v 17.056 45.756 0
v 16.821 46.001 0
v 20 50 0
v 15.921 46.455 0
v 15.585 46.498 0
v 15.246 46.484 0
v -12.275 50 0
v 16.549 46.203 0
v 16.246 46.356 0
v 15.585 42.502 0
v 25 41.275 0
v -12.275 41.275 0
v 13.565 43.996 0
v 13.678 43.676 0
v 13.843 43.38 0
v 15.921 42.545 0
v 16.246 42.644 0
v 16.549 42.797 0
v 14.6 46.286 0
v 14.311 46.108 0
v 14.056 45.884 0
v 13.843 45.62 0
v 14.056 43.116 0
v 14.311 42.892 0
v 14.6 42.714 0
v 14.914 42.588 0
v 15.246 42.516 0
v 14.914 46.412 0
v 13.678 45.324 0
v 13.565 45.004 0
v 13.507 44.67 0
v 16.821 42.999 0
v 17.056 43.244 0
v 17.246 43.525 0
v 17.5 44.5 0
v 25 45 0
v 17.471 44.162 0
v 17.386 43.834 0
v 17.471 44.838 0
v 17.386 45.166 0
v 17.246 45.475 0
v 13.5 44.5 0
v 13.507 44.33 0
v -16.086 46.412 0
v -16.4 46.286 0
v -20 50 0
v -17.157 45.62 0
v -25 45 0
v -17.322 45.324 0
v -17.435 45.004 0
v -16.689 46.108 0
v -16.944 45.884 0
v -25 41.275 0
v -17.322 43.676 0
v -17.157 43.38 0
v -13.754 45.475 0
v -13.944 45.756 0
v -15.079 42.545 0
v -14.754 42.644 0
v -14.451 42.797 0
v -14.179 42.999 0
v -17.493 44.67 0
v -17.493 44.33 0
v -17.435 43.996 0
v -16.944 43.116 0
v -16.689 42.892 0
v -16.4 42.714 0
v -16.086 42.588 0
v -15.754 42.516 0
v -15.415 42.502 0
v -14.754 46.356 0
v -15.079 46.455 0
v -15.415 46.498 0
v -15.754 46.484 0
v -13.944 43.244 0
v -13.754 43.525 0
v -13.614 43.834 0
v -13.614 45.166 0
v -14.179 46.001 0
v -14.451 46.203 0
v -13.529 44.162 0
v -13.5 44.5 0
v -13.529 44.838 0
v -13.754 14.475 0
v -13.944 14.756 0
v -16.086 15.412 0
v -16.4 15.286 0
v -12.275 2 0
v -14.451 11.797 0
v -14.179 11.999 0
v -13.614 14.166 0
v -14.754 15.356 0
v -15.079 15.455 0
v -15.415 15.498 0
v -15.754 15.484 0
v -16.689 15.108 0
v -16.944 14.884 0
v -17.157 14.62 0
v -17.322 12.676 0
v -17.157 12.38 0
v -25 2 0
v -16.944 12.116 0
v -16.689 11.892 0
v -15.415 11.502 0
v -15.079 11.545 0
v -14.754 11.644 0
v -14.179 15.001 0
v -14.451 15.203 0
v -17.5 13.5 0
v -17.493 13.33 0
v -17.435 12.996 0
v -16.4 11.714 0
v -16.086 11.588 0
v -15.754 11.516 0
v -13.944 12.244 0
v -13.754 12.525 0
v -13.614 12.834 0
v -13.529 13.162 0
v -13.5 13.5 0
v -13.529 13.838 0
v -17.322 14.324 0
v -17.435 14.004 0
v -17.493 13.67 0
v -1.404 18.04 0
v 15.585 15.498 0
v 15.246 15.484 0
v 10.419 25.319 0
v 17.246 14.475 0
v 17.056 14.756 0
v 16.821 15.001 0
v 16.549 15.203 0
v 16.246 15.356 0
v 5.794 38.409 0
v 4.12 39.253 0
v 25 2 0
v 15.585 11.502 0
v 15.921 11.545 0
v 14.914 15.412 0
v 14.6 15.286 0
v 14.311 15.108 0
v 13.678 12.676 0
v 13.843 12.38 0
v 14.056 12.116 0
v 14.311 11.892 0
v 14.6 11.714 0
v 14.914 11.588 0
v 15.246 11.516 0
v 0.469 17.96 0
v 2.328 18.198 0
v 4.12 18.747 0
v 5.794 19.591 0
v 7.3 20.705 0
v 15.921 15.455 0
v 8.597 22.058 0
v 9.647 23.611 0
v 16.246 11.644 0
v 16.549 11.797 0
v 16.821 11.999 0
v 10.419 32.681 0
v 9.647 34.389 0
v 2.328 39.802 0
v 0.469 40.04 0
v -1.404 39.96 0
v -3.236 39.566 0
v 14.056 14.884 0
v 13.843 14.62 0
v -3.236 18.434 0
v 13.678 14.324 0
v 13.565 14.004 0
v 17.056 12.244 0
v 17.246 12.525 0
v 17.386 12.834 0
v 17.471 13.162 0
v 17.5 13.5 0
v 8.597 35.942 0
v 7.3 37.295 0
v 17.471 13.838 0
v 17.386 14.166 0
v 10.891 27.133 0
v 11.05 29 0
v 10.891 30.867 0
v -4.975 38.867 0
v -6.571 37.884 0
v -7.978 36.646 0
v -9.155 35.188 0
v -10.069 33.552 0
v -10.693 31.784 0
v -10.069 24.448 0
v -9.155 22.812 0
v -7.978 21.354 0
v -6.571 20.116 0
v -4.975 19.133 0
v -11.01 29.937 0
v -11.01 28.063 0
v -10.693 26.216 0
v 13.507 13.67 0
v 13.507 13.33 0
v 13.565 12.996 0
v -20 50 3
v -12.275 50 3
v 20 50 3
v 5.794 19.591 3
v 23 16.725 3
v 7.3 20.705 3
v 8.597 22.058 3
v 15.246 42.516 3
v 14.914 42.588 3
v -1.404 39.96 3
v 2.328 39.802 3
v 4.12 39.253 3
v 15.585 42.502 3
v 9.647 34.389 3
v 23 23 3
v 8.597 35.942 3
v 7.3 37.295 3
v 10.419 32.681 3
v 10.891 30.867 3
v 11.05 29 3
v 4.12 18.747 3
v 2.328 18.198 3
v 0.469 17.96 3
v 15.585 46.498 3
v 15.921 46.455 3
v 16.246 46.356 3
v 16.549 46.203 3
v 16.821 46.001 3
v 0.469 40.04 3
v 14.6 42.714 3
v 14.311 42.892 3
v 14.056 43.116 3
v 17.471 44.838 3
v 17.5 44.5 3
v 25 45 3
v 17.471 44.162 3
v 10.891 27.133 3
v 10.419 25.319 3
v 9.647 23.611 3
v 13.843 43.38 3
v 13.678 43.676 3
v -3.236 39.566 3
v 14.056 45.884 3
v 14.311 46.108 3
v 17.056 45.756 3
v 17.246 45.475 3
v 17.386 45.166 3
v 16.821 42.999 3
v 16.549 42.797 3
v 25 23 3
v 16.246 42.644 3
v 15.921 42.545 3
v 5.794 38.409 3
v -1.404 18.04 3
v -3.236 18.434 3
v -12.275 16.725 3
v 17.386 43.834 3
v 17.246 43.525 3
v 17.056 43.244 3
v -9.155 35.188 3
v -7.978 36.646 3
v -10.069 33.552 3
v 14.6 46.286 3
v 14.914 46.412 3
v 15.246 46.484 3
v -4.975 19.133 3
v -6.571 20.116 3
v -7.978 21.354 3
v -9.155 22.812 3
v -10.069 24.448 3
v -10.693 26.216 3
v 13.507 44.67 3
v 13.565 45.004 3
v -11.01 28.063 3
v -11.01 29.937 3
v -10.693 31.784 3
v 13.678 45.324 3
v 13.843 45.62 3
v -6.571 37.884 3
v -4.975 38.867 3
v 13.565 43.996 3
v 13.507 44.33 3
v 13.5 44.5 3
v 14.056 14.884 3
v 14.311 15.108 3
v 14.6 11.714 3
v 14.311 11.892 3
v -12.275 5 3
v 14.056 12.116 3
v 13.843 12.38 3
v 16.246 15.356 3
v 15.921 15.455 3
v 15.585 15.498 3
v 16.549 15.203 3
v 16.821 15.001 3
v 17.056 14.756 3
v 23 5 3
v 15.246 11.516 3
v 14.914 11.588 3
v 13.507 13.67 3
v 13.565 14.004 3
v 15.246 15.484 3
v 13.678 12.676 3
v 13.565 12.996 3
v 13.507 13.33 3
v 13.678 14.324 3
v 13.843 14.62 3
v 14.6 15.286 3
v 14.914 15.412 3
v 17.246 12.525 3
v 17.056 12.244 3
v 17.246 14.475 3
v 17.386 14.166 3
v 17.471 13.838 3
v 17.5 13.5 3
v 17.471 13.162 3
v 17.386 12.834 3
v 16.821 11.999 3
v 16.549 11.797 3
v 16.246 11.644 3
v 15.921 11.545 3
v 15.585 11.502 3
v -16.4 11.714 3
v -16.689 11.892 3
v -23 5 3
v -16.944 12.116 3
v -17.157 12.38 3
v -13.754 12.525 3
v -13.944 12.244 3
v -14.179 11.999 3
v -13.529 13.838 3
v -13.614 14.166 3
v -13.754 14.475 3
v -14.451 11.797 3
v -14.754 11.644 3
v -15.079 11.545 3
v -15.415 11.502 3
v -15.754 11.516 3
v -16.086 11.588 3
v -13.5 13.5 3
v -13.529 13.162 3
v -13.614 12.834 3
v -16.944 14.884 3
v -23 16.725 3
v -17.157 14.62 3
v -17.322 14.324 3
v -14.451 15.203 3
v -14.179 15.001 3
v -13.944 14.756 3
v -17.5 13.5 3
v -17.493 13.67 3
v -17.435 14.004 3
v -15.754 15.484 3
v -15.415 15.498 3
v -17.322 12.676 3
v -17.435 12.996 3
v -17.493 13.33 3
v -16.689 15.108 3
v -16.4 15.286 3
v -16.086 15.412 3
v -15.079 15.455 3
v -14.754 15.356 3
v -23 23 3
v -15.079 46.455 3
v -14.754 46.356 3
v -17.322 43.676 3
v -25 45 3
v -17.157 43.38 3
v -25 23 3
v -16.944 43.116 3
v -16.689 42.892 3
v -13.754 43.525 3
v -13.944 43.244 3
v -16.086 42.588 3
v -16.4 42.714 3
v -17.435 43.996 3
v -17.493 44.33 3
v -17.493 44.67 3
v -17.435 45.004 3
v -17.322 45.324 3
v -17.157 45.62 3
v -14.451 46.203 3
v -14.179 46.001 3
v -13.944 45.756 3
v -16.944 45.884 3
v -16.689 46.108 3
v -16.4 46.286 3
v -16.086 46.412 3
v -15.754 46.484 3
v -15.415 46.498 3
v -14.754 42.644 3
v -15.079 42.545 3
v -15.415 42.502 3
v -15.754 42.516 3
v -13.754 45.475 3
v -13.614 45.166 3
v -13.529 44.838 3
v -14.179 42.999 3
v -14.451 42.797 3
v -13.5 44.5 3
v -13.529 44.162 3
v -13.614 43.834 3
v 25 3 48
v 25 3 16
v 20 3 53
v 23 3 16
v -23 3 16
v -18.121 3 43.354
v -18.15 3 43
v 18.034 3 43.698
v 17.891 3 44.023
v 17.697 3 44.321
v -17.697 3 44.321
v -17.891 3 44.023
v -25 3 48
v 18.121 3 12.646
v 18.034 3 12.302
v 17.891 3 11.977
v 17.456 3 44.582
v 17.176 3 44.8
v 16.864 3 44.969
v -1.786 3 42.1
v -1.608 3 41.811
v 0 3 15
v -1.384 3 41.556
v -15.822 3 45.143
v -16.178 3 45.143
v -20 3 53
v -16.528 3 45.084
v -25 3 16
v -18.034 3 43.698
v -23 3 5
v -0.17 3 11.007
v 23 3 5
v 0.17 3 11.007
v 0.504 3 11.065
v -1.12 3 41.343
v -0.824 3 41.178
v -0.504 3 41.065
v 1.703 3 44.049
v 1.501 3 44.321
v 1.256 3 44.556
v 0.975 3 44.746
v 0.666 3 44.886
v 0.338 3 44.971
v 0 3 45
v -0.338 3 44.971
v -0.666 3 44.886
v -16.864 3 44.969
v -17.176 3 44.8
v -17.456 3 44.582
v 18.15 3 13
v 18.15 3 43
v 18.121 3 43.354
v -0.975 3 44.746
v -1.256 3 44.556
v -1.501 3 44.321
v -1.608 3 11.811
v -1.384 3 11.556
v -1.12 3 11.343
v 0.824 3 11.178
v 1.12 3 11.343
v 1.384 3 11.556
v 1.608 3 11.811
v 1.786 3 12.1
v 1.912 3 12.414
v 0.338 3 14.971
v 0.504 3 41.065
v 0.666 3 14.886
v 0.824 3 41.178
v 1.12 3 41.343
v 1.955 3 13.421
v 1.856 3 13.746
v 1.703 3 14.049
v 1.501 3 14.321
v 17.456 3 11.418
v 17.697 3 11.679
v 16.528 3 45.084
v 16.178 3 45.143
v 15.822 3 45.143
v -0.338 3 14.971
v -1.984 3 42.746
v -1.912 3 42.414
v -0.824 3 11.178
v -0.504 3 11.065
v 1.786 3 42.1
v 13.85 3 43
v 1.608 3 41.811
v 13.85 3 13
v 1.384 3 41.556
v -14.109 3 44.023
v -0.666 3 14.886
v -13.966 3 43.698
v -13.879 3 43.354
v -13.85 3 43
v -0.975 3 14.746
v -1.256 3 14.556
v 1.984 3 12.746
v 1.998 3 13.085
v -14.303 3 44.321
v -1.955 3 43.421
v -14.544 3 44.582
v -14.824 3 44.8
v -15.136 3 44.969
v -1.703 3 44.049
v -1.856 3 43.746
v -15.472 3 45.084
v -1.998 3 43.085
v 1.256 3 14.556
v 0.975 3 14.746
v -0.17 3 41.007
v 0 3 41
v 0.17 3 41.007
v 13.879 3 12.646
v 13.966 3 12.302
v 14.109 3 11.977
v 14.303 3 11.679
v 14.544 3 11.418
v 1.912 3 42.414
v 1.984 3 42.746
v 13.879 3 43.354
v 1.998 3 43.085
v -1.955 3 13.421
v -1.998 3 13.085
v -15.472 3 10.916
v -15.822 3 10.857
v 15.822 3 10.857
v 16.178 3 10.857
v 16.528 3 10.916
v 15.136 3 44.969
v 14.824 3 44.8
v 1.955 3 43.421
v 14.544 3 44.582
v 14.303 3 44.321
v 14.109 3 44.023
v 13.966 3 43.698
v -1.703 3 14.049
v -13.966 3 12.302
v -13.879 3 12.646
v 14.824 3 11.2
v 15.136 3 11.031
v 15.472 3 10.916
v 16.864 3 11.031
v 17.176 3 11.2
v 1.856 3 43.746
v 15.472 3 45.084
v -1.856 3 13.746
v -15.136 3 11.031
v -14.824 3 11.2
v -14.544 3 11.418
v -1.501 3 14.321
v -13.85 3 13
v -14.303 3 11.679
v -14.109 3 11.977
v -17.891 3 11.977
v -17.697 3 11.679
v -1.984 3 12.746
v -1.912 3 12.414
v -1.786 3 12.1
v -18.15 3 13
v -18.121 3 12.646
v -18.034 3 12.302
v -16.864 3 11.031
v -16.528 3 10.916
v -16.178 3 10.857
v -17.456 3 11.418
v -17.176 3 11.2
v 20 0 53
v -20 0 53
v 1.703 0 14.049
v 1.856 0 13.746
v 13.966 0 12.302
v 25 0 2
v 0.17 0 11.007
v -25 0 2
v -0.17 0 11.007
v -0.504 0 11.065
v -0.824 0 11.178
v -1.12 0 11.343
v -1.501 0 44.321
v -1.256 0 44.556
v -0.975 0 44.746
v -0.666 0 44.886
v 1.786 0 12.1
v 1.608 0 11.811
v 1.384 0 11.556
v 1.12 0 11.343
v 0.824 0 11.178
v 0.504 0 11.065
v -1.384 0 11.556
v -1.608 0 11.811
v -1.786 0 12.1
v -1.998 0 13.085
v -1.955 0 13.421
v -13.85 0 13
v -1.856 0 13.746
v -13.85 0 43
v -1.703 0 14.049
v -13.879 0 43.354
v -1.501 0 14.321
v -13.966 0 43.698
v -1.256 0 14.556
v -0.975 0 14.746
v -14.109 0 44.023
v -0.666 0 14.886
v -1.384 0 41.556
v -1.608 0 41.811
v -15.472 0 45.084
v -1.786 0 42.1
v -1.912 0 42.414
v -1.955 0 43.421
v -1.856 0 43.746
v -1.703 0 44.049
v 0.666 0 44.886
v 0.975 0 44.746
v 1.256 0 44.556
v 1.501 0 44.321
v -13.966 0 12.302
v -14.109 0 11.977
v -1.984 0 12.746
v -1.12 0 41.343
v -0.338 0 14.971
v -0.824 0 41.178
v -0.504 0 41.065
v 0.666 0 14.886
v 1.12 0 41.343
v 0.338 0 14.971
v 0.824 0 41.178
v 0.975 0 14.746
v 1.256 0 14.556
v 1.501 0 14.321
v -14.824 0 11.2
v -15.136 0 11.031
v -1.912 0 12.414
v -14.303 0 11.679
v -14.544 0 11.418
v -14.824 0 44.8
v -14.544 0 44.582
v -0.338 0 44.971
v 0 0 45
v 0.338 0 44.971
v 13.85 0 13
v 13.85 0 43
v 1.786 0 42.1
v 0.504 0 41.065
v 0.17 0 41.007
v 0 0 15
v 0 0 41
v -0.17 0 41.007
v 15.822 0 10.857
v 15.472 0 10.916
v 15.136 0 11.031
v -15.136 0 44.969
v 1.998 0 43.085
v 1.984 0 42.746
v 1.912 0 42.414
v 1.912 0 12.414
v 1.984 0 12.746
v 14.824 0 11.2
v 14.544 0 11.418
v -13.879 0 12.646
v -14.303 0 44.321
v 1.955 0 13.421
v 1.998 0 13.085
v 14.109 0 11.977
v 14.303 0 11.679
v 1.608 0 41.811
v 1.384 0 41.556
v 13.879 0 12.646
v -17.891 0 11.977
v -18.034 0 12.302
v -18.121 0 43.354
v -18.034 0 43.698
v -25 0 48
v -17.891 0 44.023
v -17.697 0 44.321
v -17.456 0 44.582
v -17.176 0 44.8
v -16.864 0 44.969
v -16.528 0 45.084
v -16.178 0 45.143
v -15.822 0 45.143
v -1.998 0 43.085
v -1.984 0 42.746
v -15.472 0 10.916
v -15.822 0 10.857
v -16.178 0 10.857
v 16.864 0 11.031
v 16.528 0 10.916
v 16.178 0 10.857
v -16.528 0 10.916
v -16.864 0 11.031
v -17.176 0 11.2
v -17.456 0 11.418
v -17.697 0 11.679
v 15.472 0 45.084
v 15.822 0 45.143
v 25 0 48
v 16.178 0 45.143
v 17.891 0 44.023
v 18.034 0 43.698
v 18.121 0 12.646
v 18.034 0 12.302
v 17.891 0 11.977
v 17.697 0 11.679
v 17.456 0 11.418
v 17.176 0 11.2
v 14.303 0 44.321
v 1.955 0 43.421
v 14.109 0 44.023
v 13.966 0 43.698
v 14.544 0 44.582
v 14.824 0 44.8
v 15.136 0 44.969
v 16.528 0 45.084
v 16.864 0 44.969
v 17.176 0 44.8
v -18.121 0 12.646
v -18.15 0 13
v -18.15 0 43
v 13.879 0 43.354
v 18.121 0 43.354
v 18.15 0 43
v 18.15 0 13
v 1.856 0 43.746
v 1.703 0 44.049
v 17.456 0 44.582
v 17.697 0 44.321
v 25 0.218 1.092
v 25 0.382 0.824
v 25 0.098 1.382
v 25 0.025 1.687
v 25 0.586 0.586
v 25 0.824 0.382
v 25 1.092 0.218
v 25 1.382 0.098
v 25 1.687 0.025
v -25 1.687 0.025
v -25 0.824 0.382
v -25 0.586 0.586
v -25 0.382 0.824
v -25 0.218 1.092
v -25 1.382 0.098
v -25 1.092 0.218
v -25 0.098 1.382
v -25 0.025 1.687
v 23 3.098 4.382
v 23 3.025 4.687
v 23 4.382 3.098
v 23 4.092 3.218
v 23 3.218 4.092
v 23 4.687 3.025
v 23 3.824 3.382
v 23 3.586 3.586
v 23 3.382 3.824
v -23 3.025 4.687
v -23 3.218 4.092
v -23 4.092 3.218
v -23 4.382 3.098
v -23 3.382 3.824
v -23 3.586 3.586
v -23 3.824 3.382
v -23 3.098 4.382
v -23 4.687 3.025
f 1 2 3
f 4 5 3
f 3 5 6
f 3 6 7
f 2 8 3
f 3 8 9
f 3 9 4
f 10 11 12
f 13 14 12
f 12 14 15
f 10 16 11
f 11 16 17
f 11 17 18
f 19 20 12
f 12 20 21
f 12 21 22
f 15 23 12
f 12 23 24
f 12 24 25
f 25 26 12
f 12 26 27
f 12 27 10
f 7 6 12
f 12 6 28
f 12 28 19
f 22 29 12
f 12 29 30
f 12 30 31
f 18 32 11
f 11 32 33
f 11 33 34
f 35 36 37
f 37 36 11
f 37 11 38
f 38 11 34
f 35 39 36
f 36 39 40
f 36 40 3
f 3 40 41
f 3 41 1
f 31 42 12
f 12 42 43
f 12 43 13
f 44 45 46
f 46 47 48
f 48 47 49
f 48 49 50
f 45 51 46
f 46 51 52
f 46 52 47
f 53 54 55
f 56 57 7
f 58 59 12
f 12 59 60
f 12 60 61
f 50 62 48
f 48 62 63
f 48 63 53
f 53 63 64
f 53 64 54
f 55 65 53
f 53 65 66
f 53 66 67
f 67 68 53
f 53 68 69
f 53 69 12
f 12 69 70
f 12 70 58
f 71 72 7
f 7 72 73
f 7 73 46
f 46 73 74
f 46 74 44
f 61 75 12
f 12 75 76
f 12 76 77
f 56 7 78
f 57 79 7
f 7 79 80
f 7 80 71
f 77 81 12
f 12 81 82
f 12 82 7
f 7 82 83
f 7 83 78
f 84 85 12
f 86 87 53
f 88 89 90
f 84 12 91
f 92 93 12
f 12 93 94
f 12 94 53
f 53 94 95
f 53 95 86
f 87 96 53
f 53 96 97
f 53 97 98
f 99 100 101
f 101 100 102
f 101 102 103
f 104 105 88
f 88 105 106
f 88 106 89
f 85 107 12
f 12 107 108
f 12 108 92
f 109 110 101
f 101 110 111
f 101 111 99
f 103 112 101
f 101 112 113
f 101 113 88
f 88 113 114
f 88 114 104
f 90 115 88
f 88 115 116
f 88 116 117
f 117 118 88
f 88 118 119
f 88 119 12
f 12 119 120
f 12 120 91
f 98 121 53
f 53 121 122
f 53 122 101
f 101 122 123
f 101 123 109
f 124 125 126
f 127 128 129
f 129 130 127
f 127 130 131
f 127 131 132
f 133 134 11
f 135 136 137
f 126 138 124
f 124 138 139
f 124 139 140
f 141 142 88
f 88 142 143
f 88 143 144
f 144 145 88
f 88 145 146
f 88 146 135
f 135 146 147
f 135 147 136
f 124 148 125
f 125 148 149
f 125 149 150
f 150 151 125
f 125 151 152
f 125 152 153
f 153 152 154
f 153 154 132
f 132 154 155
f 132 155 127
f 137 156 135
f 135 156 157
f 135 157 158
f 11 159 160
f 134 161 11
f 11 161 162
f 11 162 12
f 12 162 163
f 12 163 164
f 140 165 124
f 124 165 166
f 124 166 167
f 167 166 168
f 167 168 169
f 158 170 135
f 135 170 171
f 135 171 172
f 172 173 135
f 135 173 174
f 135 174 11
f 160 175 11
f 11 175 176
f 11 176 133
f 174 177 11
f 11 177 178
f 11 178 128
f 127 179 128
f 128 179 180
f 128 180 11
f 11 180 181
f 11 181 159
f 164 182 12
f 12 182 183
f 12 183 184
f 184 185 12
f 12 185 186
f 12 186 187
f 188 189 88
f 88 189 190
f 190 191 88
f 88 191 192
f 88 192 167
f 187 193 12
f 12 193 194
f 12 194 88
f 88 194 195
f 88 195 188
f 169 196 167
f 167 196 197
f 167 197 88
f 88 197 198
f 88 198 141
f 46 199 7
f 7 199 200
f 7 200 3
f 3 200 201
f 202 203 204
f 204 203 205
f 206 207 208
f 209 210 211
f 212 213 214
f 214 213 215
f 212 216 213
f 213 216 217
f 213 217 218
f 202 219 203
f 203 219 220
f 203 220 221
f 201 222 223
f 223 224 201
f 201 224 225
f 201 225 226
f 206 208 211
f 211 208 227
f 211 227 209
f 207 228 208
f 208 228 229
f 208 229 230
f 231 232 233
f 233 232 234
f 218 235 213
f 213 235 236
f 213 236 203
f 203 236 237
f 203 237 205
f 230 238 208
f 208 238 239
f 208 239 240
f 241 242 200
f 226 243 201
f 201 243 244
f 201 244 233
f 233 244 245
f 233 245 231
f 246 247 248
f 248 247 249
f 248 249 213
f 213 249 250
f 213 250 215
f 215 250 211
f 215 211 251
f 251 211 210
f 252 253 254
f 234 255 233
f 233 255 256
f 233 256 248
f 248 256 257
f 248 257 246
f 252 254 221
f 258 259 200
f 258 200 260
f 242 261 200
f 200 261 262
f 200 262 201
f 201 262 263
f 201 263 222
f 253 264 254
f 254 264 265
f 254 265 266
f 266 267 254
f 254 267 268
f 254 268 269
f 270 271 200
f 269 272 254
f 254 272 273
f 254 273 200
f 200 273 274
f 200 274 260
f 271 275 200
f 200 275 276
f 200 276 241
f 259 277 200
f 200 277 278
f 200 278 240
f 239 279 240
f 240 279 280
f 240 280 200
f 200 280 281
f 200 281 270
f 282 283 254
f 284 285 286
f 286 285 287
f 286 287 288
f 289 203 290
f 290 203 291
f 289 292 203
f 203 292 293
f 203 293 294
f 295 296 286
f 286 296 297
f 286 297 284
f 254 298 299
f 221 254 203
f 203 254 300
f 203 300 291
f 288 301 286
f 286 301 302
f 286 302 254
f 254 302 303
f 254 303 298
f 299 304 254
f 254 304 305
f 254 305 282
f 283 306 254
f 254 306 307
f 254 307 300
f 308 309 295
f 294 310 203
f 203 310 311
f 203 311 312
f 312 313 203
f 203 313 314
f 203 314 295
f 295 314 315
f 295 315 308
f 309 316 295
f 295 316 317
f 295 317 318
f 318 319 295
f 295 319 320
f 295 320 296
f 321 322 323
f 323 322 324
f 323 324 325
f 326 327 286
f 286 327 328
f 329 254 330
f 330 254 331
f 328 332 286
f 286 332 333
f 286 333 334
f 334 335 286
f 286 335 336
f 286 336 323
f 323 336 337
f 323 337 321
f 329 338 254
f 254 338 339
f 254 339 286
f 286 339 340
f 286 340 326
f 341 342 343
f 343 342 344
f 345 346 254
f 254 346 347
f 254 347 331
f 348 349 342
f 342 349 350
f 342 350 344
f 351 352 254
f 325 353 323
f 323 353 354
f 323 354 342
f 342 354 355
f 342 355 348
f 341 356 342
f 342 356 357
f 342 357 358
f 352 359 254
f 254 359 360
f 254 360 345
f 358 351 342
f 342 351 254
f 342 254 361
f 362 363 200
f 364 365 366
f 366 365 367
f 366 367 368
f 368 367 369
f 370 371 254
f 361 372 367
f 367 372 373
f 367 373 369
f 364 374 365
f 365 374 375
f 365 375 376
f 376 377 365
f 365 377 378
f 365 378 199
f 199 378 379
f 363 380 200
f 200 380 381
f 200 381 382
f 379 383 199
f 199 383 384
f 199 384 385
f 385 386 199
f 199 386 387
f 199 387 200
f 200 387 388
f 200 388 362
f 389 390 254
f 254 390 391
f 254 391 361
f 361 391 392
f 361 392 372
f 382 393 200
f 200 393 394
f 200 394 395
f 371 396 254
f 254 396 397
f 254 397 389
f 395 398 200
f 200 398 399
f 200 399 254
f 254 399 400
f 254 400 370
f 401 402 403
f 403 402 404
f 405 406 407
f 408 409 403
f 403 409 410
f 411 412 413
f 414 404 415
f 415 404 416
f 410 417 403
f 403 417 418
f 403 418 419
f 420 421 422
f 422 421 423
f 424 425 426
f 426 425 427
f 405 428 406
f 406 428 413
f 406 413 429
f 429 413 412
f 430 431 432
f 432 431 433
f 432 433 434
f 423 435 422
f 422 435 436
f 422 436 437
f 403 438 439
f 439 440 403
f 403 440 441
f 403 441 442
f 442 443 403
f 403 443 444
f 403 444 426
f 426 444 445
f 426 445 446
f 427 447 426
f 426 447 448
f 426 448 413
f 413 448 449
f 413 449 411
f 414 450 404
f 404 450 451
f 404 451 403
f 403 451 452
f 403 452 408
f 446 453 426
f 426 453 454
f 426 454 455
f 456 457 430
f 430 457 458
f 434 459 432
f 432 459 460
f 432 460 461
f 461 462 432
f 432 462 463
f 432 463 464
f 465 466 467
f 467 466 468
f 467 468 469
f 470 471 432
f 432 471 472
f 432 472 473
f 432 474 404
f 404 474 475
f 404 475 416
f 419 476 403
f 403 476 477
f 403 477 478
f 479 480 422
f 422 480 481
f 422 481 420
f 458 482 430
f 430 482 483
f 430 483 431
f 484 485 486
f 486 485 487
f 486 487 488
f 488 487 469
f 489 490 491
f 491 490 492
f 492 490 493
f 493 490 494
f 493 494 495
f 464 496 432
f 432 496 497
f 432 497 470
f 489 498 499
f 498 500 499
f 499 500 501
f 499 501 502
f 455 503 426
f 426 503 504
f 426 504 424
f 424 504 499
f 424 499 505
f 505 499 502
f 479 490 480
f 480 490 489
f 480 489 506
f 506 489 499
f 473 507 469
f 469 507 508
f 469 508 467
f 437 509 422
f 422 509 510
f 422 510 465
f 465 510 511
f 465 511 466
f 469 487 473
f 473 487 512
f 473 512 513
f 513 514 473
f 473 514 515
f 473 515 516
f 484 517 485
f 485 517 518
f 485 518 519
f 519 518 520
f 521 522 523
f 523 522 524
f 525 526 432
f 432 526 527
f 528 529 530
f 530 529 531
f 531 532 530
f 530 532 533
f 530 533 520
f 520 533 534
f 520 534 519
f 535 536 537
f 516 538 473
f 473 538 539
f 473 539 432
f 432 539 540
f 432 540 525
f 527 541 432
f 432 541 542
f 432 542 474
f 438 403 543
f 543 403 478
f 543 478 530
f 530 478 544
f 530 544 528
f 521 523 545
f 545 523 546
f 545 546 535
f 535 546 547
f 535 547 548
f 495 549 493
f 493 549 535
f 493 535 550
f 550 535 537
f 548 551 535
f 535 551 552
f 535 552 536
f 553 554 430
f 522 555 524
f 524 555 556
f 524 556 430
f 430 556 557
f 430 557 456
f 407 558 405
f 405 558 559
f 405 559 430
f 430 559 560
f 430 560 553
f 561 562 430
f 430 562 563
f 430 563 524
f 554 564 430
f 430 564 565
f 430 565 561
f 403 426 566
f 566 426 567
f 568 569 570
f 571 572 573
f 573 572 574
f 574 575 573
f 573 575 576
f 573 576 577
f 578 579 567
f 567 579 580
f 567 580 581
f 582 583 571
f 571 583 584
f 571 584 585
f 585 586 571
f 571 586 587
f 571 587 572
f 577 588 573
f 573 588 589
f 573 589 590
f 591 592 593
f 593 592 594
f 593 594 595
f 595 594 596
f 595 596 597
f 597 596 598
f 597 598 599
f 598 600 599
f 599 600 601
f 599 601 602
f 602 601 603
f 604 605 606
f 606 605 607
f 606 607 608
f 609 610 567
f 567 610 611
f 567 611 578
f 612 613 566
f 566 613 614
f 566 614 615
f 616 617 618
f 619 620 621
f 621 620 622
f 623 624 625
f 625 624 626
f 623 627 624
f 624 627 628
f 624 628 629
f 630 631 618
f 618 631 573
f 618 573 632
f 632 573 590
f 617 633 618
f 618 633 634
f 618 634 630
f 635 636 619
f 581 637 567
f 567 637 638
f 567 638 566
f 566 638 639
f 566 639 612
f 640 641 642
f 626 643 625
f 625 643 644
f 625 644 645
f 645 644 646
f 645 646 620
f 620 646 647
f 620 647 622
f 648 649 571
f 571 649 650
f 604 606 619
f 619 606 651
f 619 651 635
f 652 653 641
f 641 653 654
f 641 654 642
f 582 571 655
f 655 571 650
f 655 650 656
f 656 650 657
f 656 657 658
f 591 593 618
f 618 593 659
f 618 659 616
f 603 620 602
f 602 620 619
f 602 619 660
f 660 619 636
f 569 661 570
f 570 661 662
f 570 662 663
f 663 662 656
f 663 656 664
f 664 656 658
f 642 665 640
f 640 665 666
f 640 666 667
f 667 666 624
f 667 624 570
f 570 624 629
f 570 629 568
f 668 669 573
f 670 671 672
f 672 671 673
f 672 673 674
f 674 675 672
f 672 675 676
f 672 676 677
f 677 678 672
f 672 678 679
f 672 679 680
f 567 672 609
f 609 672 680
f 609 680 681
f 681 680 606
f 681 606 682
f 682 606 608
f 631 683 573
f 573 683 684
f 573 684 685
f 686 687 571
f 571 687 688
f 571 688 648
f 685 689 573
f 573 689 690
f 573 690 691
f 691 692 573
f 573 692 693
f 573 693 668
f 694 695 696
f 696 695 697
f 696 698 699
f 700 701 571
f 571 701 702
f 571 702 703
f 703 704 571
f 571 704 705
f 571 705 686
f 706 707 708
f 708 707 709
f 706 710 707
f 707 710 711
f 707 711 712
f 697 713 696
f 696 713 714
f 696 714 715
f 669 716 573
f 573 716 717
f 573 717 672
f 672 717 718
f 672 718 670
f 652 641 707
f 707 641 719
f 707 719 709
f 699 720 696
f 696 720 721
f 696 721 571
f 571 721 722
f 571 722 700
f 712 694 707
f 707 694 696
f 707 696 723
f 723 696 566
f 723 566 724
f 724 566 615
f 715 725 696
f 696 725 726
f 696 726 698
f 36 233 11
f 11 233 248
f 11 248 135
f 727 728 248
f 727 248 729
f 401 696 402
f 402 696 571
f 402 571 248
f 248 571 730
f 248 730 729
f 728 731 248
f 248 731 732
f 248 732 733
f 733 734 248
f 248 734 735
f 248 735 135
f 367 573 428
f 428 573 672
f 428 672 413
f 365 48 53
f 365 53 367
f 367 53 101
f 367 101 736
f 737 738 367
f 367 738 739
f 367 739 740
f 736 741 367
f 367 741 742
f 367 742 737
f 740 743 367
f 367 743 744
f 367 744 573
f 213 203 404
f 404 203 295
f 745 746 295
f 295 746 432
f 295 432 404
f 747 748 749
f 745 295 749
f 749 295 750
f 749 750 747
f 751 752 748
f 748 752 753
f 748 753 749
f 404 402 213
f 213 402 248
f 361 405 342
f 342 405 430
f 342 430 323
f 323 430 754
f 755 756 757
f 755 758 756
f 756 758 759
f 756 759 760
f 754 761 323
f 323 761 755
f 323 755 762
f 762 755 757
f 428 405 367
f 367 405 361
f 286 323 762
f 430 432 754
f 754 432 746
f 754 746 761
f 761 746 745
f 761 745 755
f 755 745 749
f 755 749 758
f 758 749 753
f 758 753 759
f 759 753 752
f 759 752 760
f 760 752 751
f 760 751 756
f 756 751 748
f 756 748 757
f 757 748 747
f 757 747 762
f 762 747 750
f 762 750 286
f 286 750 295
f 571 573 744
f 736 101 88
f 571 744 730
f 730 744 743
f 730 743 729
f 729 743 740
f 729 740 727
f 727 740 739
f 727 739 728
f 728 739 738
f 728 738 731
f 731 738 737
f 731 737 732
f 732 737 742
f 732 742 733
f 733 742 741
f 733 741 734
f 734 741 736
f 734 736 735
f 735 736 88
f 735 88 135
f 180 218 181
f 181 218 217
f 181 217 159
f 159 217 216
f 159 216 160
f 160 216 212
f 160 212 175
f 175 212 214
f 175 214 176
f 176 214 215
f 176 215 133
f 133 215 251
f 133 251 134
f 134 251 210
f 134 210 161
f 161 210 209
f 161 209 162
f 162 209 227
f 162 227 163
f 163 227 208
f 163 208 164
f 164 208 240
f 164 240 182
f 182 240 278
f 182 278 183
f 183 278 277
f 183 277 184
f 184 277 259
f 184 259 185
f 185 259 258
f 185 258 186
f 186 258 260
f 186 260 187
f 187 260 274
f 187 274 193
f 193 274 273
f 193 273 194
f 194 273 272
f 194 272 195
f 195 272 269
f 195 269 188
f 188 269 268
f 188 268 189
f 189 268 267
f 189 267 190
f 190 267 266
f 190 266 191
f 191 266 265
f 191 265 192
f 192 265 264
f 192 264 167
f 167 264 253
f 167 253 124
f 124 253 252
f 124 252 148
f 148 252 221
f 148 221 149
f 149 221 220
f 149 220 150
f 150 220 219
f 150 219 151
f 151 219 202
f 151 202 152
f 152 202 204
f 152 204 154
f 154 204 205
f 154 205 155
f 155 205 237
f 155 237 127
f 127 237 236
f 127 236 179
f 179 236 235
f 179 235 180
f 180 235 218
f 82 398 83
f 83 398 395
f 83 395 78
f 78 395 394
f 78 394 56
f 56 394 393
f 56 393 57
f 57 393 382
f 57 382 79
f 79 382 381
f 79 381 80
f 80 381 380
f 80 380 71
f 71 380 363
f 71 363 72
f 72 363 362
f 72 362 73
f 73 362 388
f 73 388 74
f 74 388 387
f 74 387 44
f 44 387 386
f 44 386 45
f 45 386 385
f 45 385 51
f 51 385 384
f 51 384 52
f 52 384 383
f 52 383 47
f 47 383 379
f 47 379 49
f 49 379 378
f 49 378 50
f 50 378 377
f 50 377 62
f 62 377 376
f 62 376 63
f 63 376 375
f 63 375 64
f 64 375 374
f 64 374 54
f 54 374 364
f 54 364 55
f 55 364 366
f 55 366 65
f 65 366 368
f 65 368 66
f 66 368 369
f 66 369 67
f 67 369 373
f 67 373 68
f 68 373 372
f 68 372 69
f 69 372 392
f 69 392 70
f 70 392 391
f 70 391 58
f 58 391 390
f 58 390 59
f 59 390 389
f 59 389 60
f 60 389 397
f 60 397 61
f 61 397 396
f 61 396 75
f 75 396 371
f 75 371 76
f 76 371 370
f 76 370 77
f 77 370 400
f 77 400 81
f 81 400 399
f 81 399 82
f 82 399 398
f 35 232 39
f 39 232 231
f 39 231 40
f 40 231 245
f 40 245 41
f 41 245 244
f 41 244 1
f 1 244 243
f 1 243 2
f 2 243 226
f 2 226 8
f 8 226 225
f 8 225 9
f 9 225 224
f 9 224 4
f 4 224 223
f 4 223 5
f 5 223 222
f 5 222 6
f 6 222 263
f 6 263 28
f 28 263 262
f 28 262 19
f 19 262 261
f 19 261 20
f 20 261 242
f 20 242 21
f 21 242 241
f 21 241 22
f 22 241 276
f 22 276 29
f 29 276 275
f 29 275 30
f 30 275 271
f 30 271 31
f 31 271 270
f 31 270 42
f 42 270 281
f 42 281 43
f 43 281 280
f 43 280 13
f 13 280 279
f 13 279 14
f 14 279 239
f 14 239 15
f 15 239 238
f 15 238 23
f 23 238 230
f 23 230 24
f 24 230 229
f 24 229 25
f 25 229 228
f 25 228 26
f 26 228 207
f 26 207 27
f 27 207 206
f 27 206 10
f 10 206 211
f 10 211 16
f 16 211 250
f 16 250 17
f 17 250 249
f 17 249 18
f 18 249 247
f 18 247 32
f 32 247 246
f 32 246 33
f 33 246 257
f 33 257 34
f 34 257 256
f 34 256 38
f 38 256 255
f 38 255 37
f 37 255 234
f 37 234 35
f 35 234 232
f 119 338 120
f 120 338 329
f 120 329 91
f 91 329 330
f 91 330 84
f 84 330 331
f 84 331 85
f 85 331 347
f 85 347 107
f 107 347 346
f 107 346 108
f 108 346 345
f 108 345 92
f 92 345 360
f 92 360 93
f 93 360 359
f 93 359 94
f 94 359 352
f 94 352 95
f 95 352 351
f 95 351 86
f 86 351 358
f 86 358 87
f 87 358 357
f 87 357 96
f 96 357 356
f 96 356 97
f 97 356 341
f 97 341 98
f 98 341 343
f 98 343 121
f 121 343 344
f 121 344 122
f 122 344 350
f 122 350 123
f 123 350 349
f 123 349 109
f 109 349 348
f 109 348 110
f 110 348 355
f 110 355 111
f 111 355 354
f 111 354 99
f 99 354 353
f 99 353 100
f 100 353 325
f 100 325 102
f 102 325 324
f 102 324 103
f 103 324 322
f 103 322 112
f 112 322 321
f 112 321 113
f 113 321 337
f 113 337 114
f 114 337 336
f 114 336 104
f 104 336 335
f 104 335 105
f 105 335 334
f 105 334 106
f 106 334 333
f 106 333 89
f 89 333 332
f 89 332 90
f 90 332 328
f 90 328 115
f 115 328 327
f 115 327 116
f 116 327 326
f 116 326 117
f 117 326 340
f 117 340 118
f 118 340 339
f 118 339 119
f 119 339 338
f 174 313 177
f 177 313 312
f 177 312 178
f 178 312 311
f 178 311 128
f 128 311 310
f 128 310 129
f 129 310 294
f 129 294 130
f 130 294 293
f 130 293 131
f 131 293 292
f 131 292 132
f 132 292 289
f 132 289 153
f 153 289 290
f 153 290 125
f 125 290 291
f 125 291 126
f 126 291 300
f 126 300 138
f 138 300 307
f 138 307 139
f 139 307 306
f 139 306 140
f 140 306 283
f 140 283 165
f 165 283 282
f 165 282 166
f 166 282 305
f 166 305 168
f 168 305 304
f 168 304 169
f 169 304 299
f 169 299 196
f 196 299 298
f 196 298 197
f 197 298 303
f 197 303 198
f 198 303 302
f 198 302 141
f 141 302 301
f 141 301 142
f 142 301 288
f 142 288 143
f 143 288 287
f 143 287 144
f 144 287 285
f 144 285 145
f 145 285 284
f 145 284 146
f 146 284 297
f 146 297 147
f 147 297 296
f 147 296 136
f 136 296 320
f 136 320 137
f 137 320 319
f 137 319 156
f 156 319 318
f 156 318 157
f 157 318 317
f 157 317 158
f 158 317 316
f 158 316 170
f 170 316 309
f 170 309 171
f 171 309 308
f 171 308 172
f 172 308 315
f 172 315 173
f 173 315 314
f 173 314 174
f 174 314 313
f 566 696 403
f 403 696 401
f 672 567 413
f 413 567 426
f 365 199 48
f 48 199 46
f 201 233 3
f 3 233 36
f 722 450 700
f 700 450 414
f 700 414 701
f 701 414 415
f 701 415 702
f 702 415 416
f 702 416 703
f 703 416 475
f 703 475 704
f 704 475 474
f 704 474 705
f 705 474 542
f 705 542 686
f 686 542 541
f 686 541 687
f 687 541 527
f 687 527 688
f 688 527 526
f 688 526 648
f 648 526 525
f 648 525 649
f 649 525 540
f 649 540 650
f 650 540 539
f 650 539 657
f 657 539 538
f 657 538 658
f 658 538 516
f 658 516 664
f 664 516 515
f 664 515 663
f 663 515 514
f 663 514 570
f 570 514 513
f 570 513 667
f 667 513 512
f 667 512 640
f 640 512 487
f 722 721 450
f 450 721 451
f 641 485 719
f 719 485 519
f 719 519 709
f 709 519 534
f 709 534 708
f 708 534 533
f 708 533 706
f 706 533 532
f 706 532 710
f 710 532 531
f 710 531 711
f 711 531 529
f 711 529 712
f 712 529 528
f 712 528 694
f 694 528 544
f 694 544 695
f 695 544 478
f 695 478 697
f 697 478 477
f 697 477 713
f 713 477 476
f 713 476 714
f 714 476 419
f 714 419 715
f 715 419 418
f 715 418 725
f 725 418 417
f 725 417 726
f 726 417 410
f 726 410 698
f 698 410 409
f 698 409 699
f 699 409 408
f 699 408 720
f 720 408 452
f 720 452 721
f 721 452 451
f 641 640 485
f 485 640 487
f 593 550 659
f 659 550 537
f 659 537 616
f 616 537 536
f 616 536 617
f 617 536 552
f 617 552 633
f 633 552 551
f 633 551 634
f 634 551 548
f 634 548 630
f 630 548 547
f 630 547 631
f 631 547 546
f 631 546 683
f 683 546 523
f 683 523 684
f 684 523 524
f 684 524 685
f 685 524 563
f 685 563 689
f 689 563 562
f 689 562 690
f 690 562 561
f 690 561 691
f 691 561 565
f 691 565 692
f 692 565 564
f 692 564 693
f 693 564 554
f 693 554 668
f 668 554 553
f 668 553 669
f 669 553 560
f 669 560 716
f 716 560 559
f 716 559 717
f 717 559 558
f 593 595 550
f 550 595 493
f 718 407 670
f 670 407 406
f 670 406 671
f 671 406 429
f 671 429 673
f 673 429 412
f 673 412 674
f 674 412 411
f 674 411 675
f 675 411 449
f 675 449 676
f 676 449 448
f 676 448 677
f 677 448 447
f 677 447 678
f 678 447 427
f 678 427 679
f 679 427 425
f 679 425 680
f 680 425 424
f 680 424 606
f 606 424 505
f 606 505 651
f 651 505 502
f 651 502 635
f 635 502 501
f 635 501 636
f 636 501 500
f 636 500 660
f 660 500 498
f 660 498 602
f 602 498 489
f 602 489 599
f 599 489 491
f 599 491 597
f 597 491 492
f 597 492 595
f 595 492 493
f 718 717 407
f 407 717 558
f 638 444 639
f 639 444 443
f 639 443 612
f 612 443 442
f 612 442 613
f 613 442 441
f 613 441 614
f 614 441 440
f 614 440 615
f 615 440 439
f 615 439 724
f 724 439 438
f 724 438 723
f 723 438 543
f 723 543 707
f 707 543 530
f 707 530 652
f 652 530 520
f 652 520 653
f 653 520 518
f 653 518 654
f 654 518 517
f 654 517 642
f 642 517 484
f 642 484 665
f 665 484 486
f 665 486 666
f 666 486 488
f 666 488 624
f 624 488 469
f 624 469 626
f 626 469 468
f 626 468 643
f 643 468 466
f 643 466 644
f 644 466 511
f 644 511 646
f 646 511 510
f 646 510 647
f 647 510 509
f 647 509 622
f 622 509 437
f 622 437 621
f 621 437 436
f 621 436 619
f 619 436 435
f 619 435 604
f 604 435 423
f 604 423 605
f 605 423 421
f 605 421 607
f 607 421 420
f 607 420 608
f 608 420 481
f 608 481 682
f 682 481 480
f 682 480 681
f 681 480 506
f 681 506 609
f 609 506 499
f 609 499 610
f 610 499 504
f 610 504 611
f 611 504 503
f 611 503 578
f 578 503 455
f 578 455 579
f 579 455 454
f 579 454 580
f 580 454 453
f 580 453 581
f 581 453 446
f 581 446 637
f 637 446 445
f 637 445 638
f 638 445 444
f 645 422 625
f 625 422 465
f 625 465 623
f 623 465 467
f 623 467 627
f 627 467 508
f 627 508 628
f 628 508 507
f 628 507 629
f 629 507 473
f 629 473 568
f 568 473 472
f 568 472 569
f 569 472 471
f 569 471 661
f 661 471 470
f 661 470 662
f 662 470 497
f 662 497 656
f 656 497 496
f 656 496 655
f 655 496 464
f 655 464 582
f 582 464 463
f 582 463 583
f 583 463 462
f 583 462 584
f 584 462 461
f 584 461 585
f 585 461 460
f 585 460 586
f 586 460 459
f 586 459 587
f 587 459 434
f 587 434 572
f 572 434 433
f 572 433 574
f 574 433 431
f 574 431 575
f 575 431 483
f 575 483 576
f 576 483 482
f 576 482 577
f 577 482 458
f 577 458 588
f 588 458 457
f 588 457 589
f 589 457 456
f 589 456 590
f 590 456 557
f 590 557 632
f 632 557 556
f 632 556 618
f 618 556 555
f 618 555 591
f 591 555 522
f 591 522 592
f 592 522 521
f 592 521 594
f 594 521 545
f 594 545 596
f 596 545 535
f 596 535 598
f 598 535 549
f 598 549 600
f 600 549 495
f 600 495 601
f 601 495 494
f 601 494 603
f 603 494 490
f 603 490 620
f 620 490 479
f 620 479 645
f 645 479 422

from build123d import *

# Parameters (mm, degrees)
SALIENTE_EXTRUIR1_DEPTH = 25
NERVIO1_REACH           = 90.369
CROQUIS3_WALL_W         = 202.590813764
CROQUIS3_WALL_H         = 2
REDONDEO1_R             = 2
CROQUIS4_R              = 11.05
CROQUIS4_R_2            = 2
CORTAR_EXTRUIR1_DEPTH   = 76
CHAFL_N1_SIZE           = 5
CORTAR_EXTRUIR2_DEPTH   = 76.119904153
CROQUIS6_R              = 2
CORTAR_EXTRUIR3_DEPTH   = 76.119904153


with BuildPart() as part:
    # Croquis2 → Saliente-Extruir1 (new, symmetric)
    with BuildSketch(Plane(origin=(0, 0, 0), x_dir=(0, 0, -1), z_dir=(1, 0, 0))):
        Polygon((0, 0), (-53, 0), (-53, 3), (-3, 3), (-3, 50), (0, 50), align=None)
    extrude(amount=SALIENTE_EXTRUIR1_DEPTH, both=True)

    # Croquis3 wall → Nervio1 (add, up to next)
    with BuildSketch(Plane(origin=(25, 13, 9.5), x_dir=(0, 0.838443616301, -0.544988350595), z_dir=(0, 0.544988350595, 0.838443616301)), mode=Mode.PRIVATE) as nervio1_sk1:
        with Locations((0, 1)):
            Rectangle(CROQUIS3_WALL_W, CROQUIS3_WALL_H)
    nervio1_tool1 = extrude(nervio1_sk1.sketch, amount=-NERVIO1_REACH, mode=Mode.PRIVATE) - part.part
    nervio1 = nervio1_tool1.solids().sort_by_distance((25, 13, 9.5))[0]
    add(nervio1)

    # Simetría1: Nervio1 across plane
    add(nervio1.mirror(Plane(origin=(0, 0, 0), x_dir=(0, 0, 1), z_dir=(1, 0, 0))))

    # Redondeo1
    redondeo1_edges = [part.edges().sort_by_distance(p)[0] for p in [
        (0, 0, 0),
        (0, 3, 3),
    ]]
    fillet(redondeo1_edges, radius=REDONDEO1_R)

    # Croquis4 → Cortar-Extruir1 (cut, through all)
    with BuildSketch(Plane.XY.offset(3)):
        with Locations((0, 29)):
            Circle(CROQUIS4_R)
        with Locations((-15.5, 44.5)):
            Circle(CROQUIS4_R_2)
        with Locations(Location((15.5, 44.5, 0), (0, 0, 180))):
            Circle(CROQUIS4_R_2)
        with Locations(Location((-15.5, 13.5, 0), (0, 0, 180))):
            Circle(CROQUIS4_R_2)
        with Locations((15.5, 13.5)):
            Circle(CROQUIS4_R_2)
    extrude(amount=-CORTAR_EXTRUIR1_DEPTH, mode=Mode.SUBTRACT)

    # Chaflán1
    chafl_n1_edges = [part.edges().sort_by_distance(p)[0] for p in [
        (25, 1.5, 53),
        (-25, 1.5, 53),
        (-25, 50, 1.5),
        (25, 50, 1.5),
    ]]
    chamfer(chafl_n1_edges, length=CHAFL_N1_SIZE)

    # Croquis5 → Cortar-Extruir2 (cut, through all)
    with BuildSketch(Plane(origin=(0, 3, 0), x_dir=(1, 0, 0), z_dir=(0, 1, 0))):
        with BuildLine():
            Line((-13.85, -13), (-13.85, -43))
            ThreePointArc((-13.85, -43), (-16, -45.15), (-18.15, -43))
            Line((-18.15, -43), (-18.15, -13))
            ThreePointArc((-18.15, -13), (-16, -10.85), (-13.85, -13))
        make_face()
        with BuildLine():
            Line((13.85, -13), (13.85, -43))
            ThreePointArc((13.85, -43), (16, -45.15), (18.15, -43))
            Line((18.15, -43), (18.15, -13))
            ThreePointArc((18.15, -13), (16, -10.85), (13.85, -13))
        make_face()
    extrude(amount=-CORTAR_EXTRUIR2_DEPTH, mode=Mode.SUBTRACT)

    # Croquis6 → Cortar-Extruir3 (cut, through all)
    with BuildSketch(Plane(origin=(0, 3, 0), x_dir=(1, 0, 0), z_dir=(0, 1, 0))):
        with Locations(Location((0, -13, 0), (0, 0, 270))):
            Circle(CROQUIS6_R)
        with Locations(Location((0, -43, 0), (0, 0, 90))):
            Circle(CROQUIS6_R)
    extrude(amount=-CORTAR_EXTRUIR3_DEPTH, mode=Mode.SUBTRACT)


solid = part.part
